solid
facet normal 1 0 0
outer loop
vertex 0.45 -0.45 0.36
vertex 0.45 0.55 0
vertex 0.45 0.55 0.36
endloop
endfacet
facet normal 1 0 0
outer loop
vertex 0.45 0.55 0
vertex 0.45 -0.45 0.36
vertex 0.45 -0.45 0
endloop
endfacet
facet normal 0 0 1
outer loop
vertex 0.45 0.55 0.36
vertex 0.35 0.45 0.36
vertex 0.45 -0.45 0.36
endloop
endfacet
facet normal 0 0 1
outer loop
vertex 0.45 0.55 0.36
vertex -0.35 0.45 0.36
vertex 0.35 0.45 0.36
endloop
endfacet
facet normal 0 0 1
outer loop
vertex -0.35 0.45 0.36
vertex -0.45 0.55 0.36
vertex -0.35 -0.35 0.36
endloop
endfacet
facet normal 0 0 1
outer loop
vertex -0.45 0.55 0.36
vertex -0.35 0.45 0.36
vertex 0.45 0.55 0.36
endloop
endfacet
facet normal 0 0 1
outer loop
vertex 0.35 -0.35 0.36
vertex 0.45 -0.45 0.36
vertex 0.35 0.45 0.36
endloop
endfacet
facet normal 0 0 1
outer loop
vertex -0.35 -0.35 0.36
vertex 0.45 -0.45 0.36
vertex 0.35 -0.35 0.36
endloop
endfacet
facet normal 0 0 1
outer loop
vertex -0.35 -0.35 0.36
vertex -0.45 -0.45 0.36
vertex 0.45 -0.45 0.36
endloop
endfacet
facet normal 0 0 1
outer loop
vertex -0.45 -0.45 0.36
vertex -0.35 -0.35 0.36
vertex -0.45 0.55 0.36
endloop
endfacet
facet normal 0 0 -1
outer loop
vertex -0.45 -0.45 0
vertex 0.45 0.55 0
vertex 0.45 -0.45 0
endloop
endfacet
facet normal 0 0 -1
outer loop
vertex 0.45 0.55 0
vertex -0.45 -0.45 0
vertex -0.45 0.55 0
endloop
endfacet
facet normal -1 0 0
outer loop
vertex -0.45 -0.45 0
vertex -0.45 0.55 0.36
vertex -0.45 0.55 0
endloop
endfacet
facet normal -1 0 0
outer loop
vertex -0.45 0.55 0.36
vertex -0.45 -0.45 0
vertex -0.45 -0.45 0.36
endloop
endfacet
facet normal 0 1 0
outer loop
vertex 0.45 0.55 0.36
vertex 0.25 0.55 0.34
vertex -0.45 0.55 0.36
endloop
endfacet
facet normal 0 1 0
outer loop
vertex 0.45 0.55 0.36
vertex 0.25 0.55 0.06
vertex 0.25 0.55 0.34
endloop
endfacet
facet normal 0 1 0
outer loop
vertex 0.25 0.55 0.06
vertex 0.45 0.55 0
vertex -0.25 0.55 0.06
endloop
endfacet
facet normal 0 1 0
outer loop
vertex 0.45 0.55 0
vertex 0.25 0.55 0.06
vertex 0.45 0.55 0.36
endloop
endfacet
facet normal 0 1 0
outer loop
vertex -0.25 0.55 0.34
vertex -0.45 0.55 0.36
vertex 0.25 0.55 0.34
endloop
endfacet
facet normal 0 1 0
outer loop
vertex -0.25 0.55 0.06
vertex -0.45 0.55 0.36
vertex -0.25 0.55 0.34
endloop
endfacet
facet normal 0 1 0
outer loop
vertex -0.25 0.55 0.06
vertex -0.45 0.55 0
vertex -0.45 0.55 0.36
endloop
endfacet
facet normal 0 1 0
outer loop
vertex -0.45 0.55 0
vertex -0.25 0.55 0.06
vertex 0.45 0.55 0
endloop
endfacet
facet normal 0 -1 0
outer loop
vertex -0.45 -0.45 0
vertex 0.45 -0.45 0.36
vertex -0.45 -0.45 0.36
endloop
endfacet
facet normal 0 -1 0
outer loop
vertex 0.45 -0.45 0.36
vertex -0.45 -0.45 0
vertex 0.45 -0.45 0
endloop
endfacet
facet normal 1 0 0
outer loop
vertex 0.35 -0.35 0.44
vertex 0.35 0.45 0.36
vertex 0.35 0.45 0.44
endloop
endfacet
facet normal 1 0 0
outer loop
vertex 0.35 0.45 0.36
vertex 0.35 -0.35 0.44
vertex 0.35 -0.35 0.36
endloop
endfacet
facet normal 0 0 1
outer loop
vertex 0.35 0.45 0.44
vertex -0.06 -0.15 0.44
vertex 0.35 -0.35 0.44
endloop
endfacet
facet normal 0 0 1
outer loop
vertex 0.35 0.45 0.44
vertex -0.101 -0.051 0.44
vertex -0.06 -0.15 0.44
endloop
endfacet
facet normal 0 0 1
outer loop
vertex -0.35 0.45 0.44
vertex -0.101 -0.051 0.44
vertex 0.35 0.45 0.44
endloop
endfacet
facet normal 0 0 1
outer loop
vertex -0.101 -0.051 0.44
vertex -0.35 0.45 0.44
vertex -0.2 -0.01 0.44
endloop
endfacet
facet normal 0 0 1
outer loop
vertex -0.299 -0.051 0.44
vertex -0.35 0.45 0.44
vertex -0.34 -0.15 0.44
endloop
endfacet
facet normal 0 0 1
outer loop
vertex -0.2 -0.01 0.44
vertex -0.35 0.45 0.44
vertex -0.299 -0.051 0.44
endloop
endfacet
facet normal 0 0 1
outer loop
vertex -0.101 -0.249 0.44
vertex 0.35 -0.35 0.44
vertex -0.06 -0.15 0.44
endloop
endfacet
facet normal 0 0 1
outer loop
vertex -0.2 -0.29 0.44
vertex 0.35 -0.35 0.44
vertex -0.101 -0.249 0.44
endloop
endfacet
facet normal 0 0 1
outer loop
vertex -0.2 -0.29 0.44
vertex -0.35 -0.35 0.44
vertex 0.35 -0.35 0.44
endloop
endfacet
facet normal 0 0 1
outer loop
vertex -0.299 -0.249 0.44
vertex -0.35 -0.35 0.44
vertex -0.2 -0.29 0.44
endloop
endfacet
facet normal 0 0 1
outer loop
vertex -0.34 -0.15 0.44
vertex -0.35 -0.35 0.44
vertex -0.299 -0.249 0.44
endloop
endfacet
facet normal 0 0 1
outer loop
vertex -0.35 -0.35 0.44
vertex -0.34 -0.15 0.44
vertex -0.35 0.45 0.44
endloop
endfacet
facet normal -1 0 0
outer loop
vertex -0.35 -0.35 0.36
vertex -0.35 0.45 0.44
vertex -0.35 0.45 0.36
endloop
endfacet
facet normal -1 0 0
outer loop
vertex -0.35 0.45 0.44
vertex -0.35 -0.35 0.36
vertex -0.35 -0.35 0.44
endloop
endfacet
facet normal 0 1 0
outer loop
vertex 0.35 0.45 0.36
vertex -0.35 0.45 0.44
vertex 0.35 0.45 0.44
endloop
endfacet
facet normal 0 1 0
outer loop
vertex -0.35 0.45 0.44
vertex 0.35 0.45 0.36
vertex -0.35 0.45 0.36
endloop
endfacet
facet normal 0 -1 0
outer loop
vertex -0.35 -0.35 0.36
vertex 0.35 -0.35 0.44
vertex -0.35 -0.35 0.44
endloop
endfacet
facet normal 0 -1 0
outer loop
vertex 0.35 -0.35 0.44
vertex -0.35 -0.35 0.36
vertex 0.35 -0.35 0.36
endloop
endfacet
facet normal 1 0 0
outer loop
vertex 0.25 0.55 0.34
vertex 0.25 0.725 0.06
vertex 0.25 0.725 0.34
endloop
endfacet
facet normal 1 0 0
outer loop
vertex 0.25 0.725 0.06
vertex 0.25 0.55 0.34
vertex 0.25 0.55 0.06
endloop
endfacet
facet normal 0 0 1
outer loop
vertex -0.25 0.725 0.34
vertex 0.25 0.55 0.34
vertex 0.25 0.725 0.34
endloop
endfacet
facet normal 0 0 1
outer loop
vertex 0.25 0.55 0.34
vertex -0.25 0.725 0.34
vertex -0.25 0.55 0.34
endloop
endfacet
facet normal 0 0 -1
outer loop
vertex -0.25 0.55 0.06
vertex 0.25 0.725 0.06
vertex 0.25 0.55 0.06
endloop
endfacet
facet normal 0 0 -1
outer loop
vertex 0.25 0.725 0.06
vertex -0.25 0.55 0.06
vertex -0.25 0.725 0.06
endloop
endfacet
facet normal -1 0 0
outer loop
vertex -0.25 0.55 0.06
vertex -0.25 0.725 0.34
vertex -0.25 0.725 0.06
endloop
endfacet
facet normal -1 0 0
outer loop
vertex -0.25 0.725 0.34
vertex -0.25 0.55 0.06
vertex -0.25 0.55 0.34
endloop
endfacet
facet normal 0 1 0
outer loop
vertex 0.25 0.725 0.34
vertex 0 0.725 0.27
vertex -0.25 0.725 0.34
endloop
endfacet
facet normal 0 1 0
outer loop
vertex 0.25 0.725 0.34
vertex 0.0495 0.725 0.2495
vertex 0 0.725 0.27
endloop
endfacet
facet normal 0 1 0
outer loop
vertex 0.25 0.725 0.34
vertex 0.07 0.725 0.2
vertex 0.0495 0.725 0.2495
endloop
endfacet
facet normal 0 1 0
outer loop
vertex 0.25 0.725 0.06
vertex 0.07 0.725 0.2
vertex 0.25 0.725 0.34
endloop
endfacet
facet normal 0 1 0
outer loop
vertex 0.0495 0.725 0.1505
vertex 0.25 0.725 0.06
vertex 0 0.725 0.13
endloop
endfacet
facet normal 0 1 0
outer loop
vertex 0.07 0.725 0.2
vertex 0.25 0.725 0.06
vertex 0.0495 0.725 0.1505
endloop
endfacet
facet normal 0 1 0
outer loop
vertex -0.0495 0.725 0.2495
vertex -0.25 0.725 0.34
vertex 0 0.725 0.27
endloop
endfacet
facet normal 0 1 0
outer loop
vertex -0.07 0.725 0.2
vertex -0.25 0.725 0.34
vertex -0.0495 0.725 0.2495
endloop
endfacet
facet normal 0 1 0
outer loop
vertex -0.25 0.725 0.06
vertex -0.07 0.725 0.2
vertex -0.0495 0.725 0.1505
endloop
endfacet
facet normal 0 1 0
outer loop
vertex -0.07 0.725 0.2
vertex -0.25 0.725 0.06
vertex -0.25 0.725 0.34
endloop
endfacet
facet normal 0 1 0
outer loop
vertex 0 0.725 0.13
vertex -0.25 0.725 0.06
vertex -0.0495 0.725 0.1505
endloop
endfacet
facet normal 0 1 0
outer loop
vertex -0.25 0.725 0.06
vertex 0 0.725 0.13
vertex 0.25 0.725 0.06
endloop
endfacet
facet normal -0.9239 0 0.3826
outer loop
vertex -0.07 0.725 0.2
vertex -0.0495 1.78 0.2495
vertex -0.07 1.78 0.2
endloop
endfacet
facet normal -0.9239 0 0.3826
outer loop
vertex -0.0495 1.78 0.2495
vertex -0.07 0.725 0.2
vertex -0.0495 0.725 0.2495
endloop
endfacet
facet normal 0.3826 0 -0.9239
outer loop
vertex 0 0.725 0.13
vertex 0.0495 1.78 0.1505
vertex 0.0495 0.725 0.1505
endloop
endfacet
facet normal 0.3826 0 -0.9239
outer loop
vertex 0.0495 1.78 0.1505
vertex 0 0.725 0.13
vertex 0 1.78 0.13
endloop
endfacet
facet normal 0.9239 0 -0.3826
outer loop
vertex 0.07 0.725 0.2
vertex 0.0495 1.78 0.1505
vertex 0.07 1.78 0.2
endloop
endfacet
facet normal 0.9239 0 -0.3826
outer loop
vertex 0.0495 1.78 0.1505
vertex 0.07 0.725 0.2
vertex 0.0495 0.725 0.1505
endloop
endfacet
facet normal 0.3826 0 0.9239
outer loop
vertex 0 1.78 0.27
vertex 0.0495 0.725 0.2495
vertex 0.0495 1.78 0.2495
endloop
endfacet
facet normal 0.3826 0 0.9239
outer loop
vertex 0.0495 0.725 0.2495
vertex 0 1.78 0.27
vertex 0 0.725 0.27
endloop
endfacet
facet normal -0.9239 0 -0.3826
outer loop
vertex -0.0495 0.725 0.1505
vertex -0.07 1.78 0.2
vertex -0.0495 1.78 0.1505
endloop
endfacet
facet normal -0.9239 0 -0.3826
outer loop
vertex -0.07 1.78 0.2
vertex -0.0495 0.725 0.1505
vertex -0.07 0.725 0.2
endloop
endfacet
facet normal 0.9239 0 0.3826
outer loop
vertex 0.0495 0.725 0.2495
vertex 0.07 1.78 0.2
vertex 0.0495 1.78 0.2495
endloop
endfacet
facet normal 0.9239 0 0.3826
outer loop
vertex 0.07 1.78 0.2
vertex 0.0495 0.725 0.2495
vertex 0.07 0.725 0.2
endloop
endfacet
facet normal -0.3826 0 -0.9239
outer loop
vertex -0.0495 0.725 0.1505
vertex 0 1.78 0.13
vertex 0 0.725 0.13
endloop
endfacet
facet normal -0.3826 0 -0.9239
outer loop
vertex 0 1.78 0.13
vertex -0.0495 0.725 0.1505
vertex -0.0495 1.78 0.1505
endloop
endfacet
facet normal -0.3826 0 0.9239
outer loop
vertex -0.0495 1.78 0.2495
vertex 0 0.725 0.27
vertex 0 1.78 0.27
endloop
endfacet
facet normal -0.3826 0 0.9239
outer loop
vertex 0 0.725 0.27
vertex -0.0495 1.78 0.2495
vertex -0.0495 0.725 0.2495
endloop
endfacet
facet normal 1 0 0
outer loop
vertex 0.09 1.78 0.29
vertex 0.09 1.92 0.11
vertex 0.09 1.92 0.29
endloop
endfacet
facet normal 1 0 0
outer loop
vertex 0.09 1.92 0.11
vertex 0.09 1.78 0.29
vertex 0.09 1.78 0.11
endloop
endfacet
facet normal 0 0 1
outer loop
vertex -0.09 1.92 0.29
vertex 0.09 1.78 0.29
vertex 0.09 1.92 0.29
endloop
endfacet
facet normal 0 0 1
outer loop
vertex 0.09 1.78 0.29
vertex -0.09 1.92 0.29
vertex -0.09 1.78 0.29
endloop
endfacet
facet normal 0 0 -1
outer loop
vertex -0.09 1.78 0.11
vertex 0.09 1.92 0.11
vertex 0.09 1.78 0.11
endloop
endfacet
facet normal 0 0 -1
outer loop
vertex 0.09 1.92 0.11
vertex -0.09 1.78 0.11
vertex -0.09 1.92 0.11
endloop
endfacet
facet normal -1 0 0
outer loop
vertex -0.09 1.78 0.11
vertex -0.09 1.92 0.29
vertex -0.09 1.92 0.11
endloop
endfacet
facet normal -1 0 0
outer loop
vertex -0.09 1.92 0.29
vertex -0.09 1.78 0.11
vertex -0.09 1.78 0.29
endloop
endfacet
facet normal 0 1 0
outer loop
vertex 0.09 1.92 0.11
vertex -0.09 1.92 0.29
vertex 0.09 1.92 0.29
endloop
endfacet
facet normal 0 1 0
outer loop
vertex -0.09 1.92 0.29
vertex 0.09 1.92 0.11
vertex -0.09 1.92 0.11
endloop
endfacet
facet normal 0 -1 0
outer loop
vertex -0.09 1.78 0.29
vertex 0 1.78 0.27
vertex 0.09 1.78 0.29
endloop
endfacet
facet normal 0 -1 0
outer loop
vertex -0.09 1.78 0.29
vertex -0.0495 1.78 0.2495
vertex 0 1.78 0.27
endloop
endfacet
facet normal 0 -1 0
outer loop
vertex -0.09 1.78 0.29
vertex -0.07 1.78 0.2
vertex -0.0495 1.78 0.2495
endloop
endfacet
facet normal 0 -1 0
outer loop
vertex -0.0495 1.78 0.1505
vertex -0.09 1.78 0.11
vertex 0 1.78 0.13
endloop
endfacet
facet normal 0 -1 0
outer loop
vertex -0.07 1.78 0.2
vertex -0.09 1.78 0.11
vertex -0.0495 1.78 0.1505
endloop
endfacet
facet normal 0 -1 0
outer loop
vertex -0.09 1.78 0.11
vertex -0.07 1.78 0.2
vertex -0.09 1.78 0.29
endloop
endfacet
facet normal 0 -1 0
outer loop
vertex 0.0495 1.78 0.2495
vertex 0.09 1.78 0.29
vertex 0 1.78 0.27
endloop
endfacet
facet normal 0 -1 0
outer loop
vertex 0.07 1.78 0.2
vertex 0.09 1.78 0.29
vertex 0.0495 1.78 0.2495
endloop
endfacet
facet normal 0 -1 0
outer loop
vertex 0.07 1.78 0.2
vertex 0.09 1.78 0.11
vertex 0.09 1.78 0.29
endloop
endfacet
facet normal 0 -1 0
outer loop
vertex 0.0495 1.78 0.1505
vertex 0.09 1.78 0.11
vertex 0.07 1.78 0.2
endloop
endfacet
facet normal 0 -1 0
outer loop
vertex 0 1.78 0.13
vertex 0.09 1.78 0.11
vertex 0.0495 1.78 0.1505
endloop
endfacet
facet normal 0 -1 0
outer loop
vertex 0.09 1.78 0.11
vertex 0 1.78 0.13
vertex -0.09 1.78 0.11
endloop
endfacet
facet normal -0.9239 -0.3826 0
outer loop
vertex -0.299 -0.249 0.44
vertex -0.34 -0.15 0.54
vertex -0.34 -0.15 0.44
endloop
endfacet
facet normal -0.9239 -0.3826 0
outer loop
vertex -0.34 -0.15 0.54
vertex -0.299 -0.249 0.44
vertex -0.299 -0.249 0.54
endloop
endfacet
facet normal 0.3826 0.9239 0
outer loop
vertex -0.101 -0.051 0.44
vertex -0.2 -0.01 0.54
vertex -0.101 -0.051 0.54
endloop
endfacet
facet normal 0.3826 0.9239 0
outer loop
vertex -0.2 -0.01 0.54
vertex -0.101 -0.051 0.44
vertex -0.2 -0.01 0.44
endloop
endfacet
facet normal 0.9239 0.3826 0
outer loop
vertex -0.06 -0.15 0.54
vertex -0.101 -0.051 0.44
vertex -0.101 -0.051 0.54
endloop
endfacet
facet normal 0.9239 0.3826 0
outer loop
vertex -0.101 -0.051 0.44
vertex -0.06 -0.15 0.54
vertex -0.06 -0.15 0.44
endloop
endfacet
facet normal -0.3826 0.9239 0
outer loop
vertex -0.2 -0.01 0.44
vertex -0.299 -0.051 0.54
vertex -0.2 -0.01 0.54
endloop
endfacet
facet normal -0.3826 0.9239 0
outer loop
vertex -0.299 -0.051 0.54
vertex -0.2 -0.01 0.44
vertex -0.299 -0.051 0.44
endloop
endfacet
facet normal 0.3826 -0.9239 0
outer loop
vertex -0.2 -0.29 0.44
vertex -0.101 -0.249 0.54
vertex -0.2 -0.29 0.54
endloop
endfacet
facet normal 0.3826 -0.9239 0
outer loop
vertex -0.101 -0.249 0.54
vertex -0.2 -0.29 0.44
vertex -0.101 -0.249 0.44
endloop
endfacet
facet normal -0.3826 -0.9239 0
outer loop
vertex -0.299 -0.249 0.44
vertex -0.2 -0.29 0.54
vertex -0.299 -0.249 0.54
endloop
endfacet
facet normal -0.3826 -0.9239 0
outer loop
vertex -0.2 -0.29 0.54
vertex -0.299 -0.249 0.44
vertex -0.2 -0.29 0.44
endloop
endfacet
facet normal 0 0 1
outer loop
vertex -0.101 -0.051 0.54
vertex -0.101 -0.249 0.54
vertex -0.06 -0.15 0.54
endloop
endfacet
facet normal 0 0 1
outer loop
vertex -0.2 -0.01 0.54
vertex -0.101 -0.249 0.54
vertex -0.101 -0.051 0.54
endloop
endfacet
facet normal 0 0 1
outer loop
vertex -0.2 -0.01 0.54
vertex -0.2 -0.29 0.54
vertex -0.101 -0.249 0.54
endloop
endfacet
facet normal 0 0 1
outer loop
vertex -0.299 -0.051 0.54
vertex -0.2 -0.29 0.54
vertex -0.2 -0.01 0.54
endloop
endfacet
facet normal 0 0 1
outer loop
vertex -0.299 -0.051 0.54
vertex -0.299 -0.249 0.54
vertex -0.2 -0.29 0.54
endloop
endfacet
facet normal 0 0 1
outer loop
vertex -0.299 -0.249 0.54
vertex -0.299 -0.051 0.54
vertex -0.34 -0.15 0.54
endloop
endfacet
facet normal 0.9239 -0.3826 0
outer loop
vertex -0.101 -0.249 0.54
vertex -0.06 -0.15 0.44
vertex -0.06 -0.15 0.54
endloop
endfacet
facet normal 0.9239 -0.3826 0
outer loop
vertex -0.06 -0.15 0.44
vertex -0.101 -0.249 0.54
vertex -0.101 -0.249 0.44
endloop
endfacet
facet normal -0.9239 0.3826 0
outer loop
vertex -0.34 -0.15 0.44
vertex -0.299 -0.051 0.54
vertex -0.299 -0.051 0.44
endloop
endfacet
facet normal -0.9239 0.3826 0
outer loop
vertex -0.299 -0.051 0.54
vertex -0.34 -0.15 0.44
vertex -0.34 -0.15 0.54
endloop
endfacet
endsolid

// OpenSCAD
union() {
  union() {
    union() {
      union() {
        union() {
          translate([-0.45, 0, 0]) {
            translate([0, -0.45, 0]) {
              translate([0, 0, 0.0]) {
                cube([0.9, 1.0, 0.36]);
              }
            }
          }
          translate([-0.35, 0, 0]) {
            translate([0, -0.35, 0]) {
              translate([0, 0, 0.36]) {
                cube([0.7, 0.8, 8.0e-2]);
              }
            }
          }
        }
        translate([-0.25, 0, 0]) {
          translate([0, 0.475, 0]) {
            translate([0, 0, 6.0e-2]) {
              cube([0.5, 0.25, 0.28]);
            }
          }
        }
      }
      translate([0, 0.6, 0]) {
        translate([0, 0, 0.2]) {
          rotate([-90.0, 0, 0]) {
            cylinder(h = 1.3, r = 7.0e-2, $fn = 8);
          }
        }
      }
    }
    translate([-9.0e-2, 0, 0]) {
      translate([0, 1.78, 0]) {
        translate([0, 0, 0.11]) {
          cube([0.18, 0.14, 0.18]);
        }
      }
    }
  }
  translate([-0.2, 0, 0]) {
    translate([0, -0.15, 0]) {
      translate([0, 0, 0.44]) {
        cylinder(h = 0.1, r = 0.14, $fn = 8);
      }
    }
  }
}
$fn = 50;
